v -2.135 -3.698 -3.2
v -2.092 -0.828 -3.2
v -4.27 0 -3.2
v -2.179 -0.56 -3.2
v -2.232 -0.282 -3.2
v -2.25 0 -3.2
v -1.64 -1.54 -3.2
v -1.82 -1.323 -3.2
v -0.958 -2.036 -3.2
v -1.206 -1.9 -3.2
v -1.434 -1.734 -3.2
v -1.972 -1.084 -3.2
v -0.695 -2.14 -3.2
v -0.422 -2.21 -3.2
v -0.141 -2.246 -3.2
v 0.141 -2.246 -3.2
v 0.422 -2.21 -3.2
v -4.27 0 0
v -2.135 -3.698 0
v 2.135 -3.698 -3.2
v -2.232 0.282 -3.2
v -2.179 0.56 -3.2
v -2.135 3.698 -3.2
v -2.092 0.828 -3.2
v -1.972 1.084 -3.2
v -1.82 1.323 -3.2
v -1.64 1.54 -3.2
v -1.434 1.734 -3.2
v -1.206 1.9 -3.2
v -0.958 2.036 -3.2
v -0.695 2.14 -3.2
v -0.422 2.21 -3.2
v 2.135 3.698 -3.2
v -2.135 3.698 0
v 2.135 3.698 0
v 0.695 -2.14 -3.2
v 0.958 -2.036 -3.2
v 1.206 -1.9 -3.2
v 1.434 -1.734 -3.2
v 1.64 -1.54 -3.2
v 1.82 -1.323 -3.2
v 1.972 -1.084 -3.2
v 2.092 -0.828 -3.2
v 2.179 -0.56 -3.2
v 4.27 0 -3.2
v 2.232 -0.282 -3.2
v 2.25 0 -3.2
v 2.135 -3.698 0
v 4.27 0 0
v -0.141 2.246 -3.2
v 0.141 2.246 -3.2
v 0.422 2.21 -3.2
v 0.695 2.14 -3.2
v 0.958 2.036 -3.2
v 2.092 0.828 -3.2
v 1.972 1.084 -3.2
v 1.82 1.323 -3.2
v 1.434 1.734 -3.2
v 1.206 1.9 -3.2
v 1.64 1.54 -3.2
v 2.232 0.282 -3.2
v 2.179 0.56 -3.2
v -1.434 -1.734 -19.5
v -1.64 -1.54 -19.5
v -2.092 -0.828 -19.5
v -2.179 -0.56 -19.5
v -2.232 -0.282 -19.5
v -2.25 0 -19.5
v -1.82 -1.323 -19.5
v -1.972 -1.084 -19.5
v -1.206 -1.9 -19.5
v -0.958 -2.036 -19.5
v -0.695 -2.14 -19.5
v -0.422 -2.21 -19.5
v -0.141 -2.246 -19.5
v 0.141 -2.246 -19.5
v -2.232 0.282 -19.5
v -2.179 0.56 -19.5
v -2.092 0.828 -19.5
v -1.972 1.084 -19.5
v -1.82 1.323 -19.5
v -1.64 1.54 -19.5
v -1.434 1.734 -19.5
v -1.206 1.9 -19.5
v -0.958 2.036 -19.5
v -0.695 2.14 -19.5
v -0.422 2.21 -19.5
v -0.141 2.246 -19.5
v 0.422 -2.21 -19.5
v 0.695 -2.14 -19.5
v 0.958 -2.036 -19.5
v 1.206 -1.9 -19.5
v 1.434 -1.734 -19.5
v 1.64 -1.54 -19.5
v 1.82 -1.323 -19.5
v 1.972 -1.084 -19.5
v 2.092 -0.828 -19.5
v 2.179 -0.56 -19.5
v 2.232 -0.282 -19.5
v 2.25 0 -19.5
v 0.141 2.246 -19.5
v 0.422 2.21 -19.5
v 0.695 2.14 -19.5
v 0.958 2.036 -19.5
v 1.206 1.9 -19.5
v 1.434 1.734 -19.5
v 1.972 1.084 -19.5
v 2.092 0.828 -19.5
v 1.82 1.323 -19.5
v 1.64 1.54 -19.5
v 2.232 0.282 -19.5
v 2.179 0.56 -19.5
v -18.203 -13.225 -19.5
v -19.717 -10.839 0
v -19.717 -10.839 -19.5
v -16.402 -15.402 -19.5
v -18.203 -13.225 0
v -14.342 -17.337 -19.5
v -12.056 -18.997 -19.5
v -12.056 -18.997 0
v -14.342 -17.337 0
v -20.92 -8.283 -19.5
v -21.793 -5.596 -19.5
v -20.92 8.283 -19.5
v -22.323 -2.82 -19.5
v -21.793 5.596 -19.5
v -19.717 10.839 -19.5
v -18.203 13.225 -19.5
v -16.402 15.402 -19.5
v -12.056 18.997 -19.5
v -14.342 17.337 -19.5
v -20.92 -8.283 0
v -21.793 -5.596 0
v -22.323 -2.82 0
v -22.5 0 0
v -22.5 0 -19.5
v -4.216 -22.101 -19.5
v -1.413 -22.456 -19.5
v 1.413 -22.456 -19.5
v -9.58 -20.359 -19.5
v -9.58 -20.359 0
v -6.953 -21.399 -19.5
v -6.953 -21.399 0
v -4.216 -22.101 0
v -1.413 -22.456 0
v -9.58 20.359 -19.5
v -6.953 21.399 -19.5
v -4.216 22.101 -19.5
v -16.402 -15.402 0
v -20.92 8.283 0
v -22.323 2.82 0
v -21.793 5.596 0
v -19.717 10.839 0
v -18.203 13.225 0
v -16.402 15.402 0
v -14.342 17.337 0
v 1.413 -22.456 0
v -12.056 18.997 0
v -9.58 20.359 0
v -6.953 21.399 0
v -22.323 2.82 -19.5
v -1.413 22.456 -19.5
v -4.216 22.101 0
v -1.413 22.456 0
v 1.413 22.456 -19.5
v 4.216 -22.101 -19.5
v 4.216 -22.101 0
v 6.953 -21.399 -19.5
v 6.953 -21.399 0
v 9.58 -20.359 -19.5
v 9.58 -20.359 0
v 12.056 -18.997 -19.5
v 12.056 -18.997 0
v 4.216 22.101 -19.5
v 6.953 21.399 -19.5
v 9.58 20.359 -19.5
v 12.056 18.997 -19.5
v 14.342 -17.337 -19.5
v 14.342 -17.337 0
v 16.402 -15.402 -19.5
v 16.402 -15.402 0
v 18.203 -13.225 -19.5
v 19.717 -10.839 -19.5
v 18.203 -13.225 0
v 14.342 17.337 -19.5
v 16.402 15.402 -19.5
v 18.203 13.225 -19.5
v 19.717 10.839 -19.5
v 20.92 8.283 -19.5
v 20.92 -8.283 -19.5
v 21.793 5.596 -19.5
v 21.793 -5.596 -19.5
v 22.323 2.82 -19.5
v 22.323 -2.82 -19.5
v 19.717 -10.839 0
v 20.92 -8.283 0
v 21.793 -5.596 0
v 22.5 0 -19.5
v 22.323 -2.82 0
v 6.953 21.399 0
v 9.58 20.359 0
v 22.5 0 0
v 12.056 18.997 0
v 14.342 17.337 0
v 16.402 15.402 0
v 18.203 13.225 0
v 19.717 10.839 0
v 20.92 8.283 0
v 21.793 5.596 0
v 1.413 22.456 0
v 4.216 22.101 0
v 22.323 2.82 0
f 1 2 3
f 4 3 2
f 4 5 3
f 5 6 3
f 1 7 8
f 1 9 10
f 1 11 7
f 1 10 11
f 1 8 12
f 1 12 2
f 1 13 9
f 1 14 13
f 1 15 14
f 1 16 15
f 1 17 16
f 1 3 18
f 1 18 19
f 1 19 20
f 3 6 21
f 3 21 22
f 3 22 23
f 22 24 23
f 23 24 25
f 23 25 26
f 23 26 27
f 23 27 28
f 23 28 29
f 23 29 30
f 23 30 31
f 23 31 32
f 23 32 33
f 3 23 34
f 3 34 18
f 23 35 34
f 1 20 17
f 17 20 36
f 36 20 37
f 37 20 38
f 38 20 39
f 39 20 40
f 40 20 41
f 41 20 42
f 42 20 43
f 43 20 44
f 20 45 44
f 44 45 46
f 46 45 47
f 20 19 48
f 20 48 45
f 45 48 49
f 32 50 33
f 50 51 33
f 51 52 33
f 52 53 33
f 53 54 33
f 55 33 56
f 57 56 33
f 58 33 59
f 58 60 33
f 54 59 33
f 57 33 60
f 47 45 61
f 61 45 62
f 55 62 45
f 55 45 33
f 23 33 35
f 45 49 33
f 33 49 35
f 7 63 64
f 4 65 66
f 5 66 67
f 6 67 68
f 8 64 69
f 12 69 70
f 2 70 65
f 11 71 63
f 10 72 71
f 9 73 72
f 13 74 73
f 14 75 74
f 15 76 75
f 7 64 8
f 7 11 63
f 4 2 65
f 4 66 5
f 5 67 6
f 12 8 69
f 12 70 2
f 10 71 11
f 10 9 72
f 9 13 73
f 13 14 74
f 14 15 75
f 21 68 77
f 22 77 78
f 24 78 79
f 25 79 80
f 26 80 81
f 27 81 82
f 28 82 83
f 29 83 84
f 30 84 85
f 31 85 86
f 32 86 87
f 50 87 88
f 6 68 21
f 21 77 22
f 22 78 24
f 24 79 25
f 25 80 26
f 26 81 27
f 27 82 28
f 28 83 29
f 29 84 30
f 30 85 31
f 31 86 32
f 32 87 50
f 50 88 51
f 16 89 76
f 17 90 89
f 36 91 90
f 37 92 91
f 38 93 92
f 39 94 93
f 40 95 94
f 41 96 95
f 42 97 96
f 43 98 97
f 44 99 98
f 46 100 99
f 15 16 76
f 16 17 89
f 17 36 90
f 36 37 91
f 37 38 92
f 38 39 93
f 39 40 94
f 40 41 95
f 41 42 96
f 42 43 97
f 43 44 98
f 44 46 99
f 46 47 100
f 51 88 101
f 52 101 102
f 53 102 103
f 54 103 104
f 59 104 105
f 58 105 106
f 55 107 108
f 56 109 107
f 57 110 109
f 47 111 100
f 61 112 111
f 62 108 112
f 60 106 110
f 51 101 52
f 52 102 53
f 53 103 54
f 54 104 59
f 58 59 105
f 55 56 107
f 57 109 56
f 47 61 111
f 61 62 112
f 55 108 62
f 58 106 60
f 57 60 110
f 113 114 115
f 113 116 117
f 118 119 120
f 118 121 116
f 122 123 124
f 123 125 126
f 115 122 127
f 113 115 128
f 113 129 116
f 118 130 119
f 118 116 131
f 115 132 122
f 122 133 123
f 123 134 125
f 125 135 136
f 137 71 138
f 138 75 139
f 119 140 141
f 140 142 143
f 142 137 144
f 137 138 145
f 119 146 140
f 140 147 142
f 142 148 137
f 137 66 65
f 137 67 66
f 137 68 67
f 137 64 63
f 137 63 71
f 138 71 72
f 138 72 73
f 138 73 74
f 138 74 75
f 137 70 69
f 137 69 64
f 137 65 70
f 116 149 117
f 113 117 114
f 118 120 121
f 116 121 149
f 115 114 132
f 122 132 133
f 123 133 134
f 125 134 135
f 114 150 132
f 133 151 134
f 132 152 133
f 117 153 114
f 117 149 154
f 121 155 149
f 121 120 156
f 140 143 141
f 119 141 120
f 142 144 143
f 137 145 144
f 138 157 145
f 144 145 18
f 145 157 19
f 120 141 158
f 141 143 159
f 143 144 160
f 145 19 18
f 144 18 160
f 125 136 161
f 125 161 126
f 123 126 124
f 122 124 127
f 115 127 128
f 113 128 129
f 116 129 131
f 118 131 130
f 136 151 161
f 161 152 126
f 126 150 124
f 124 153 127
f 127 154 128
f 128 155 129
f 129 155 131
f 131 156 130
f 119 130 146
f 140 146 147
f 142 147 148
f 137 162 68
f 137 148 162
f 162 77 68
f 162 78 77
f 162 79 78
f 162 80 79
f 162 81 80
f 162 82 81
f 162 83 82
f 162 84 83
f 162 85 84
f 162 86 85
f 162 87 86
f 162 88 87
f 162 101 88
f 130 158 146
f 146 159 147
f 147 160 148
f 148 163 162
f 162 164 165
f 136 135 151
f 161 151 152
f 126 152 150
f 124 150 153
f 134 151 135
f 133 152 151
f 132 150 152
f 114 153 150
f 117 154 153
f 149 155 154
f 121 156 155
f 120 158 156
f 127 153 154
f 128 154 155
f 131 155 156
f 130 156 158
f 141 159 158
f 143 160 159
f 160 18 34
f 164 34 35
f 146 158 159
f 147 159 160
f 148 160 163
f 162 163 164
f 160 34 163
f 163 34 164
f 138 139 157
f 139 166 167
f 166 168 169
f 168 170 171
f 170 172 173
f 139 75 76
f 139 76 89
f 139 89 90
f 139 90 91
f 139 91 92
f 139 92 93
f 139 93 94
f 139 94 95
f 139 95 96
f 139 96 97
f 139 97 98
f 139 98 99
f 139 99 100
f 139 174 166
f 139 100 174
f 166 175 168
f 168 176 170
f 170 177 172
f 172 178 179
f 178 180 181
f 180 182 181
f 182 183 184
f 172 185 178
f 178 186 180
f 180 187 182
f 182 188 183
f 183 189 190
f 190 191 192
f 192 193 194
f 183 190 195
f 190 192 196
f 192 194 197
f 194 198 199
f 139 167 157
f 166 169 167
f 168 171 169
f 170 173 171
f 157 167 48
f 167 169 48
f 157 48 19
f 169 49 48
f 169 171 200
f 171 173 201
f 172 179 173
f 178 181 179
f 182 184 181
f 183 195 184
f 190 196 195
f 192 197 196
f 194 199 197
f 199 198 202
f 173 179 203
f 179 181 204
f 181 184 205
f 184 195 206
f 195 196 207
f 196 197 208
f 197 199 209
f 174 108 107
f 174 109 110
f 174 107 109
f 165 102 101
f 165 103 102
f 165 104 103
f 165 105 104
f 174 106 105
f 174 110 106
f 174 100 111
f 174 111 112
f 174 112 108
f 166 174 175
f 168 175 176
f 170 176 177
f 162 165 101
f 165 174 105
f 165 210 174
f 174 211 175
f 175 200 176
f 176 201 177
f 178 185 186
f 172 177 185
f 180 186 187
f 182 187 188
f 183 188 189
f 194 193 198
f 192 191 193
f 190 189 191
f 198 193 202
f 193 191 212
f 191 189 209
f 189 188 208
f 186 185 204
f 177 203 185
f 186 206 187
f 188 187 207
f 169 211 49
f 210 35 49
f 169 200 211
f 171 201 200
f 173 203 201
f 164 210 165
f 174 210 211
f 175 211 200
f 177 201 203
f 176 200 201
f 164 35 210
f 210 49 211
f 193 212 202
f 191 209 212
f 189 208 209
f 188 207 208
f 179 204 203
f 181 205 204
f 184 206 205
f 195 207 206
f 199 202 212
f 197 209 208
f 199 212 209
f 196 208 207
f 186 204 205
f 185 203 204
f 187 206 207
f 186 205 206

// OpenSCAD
$fn = 50;

difference() {
	union() {
		translate(v = [0, 0, -19.5]) {
			cylinder(h = 19.5, r = 22.5);
		}
	}
	union() {
		translate(v = [0, 0, 0]) {
			rotate(a = [0, 0, 0]) {
				difference() {
					union() {
						translate(v = [0, 0, -3.2]) {
							linear_extrude(height = 3.2) {
								polygon(points = [[4.2698, 0.0], [2.1349000000000005, 3.697755269078796], [-2.134899999999999, 3.6977552690787965], [-4.2698, 5.228996902999369e-16], [-2.134900000000002, -3.6977552690787956], [2.1348999999999974, -3.697755269078798]]);
							}
						}
					}
					union();
				}
			}
		}
		#translate(v = [0, 0, -100.0]) {
			cylinder(h = 200, r = 2.25);
		}
	}
}
